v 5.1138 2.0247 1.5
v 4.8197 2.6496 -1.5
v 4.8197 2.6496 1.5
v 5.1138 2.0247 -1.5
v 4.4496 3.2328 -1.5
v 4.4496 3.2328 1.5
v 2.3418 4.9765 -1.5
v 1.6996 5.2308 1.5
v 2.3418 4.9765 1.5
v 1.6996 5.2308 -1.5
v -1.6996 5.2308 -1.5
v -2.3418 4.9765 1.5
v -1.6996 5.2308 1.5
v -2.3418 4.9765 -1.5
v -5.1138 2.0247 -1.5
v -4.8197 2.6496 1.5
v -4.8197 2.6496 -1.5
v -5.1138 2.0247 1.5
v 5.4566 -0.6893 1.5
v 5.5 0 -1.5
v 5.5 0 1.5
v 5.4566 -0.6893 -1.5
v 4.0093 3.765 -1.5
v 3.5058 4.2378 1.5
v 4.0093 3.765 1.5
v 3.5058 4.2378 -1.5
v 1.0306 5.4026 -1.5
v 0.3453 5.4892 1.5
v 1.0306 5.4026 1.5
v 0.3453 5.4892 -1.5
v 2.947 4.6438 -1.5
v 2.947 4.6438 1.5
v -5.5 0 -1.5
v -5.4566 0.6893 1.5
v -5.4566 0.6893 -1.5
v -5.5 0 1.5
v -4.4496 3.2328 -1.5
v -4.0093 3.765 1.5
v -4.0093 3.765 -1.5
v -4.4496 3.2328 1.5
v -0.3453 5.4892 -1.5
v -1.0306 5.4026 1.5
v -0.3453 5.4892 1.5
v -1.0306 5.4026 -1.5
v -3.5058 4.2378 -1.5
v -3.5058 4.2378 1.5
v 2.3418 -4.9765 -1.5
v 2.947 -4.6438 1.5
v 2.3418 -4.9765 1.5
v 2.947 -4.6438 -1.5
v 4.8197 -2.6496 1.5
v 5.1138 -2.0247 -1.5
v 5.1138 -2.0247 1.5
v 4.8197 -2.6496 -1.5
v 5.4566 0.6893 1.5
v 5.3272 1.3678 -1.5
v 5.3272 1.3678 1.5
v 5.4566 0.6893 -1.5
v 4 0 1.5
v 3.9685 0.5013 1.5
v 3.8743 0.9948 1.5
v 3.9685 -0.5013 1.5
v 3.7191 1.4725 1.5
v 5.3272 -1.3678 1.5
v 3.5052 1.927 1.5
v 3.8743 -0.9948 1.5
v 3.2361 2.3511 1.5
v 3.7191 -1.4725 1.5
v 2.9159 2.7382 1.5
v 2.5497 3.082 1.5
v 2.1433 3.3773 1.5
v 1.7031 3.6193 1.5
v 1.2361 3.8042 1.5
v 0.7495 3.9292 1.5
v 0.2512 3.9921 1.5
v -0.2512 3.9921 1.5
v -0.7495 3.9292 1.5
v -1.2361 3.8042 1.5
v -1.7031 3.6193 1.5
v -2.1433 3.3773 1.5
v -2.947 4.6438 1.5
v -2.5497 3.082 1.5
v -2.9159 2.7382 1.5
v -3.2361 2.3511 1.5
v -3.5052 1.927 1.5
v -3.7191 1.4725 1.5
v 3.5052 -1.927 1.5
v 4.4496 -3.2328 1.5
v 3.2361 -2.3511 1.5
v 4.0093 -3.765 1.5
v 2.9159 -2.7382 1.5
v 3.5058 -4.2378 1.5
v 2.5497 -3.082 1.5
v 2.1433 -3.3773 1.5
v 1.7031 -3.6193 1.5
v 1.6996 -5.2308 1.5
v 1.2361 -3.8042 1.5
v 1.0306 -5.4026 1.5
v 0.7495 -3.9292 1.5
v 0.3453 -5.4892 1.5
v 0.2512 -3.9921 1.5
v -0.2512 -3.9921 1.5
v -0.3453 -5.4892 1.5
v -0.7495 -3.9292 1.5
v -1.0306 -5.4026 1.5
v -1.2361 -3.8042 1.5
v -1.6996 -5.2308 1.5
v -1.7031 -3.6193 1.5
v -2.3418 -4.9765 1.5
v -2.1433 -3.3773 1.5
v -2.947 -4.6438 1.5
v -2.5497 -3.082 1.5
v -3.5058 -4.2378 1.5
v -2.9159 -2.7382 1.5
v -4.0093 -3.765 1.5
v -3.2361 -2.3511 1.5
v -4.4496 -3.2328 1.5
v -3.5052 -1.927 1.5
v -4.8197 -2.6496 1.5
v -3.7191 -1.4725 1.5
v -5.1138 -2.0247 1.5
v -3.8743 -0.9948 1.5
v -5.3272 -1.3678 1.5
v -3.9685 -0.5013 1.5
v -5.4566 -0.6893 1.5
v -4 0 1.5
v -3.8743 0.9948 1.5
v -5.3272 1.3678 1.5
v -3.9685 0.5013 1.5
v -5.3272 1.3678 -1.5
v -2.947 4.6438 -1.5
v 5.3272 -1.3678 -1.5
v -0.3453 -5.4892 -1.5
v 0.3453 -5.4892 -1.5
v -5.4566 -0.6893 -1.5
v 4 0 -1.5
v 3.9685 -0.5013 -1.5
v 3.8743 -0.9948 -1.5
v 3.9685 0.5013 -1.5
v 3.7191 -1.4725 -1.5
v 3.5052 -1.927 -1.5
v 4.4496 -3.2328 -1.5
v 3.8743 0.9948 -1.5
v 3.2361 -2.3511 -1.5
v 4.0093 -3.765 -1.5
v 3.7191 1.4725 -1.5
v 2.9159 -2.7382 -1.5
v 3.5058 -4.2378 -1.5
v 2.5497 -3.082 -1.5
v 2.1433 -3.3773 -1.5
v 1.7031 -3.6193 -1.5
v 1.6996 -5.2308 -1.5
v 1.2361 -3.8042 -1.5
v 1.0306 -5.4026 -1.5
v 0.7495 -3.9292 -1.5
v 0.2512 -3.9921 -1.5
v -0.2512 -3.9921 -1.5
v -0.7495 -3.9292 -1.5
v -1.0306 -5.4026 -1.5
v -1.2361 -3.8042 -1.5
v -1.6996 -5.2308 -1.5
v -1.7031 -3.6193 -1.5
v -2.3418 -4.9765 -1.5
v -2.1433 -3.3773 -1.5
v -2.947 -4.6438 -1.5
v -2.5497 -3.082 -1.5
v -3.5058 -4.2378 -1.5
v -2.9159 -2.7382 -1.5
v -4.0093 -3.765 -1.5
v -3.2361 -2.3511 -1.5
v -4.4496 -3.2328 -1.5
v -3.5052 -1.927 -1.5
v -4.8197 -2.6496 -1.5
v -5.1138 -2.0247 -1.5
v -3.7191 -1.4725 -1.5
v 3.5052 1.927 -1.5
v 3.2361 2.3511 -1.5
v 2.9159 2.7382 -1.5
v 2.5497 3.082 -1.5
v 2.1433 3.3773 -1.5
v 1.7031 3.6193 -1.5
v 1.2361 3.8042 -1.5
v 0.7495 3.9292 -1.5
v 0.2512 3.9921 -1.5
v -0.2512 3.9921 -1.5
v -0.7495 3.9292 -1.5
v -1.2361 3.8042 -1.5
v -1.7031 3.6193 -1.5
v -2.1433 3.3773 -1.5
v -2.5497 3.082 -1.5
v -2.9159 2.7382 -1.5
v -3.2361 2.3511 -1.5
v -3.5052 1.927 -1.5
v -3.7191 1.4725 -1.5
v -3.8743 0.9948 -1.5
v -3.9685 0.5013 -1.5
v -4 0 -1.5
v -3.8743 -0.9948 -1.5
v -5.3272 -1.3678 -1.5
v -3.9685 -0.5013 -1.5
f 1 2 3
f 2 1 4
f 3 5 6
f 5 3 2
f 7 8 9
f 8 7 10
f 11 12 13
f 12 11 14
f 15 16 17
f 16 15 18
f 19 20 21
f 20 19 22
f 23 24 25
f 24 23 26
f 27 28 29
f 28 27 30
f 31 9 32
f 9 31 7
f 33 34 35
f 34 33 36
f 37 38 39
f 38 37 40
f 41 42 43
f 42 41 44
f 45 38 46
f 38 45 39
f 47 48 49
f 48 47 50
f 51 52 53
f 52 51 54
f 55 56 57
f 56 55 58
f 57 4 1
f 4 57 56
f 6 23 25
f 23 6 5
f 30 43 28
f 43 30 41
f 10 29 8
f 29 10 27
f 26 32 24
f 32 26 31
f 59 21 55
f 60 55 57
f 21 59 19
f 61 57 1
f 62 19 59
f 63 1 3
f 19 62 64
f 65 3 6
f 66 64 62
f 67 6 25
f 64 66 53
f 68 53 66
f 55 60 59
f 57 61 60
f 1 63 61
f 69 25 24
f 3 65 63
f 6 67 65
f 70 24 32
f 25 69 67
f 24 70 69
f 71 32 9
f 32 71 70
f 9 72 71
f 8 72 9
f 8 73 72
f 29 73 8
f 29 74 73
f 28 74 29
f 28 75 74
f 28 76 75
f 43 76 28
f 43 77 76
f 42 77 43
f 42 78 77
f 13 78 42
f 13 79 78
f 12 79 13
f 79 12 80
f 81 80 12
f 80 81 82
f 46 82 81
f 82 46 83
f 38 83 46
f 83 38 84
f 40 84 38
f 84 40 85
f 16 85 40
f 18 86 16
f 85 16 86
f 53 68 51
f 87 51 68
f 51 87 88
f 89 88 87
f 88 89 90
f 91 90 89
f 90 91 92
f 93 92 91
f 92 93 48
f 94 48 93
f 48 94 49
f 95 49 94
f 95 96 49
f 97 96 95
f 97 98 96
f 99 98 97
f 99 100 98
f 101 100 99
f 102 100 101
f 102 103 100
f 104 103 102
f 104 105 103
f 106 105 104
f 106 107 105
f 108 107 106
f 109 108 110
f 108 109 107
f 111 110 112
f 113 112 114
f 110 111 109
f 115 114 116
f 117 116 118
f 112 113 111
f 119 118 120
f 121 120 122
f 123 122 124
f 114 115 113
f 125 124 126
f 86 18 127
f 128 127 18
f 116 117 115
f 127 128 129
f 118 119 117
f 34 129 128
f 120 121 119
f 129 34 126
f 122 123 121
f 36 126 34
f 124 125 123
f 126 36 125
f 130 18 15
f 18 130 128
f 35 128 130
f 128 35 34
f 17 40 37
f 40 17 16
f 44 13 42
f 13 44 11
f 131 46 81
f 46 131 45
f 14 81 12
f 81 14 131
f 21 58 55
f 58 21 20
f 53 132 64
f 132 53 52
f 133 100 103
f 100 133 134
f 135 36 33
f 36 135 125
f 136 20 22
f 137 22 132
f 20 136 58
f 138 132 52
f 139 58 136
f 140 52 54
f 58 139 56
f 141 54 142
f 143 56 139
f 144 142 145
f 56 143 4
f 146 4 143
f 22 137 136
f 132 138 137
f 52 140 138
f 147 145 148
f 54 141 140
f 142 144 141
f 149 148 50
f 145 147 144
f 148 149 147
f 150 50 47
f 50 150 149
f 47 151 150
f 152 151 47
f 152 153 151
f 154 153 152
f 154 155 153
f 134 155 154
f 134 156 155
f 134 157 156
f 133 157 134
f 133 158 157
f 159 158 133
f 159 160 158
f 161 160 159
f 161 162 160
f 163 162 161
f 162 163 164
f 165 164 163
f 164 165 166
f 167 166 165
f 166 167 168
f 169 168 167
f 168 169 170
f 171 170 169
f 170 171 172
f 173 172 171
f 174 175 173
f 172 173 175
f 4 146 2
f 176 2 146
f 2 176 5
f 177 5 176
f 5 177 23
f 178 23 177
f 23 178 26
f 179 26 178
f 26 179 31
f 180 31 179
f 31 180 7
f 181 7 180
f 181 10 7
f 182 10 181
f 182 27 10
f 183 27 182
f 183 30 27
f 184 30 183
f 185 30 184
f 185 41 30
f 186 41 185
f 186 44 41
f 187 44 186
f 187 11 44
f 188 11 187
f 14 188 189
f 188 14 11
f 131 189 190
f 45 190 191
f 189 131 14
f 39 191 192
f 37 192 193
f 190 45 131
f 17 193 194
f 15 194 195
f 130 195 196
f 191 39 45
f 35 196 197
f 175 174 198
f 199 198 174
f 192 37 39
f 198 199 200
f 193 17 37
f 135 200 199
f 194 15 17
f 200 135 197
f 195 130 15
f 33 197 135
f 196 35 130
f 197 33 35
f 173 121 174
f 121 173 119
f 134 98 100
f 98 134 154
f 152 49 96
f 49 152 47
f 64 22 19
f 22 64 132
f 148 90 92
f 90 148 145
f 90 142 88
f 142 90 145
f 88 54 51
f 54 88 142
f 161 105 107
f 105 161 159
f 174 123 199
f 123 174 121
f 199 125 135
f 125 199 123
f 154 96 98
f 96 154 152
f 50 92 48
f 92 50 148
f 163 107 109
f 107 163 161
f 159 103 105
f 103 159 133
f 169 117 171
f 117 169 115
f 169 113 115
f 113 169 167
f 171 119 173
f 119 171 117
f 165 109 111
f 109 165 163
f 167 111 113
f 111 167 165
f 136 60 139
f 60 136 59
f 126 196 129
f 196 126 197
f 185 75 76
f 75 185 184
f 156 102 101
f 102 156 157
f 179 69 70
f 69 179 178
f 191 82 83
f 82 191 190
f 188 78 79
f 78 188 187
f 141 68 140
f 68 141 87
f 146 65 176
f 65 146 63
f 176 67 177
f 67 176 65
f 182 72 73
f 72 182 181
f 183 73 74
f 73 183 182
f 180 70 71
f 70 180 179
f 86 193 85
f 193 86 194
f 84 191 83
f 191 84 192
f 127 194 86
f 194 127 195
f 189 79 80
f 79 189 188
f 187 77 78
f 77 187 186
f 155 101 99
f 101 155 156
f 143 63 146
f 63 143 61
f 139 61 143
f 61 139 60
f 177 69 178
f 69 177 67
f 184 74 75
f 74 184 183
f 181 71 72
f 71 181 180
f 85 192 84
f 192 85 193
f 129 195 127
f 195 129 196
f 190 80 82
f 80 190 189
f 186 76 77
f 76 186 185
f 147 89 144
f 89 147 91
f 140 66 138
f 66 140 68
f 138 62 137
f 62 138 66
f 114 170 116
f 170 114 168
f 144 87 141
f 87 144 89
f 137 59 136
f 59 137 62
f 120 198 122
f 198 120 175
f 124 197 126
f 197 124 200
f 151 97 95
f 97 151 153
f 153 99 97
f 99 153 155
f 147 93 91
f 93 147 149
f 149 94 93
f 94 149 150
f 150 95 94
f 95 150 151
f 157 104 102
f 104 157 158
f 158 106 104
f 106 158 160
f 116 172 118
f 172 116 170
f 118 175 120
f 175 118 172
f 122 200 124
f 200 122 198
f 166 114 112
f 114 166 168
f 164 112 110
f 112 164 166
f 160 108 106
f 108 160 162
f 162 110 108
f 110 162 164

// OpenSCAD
$fn = 50;


difference() {
	union() {
		translate(v = [0, 0, -1.5000000000]) {
			cylinder(h = 3, r = 5.5000000000);
		}
	}
	union() {
		translate(v = [0, 0, -100.0000000000]) {
			cylinder(h = 200, r = 4);
		}
	}
}
